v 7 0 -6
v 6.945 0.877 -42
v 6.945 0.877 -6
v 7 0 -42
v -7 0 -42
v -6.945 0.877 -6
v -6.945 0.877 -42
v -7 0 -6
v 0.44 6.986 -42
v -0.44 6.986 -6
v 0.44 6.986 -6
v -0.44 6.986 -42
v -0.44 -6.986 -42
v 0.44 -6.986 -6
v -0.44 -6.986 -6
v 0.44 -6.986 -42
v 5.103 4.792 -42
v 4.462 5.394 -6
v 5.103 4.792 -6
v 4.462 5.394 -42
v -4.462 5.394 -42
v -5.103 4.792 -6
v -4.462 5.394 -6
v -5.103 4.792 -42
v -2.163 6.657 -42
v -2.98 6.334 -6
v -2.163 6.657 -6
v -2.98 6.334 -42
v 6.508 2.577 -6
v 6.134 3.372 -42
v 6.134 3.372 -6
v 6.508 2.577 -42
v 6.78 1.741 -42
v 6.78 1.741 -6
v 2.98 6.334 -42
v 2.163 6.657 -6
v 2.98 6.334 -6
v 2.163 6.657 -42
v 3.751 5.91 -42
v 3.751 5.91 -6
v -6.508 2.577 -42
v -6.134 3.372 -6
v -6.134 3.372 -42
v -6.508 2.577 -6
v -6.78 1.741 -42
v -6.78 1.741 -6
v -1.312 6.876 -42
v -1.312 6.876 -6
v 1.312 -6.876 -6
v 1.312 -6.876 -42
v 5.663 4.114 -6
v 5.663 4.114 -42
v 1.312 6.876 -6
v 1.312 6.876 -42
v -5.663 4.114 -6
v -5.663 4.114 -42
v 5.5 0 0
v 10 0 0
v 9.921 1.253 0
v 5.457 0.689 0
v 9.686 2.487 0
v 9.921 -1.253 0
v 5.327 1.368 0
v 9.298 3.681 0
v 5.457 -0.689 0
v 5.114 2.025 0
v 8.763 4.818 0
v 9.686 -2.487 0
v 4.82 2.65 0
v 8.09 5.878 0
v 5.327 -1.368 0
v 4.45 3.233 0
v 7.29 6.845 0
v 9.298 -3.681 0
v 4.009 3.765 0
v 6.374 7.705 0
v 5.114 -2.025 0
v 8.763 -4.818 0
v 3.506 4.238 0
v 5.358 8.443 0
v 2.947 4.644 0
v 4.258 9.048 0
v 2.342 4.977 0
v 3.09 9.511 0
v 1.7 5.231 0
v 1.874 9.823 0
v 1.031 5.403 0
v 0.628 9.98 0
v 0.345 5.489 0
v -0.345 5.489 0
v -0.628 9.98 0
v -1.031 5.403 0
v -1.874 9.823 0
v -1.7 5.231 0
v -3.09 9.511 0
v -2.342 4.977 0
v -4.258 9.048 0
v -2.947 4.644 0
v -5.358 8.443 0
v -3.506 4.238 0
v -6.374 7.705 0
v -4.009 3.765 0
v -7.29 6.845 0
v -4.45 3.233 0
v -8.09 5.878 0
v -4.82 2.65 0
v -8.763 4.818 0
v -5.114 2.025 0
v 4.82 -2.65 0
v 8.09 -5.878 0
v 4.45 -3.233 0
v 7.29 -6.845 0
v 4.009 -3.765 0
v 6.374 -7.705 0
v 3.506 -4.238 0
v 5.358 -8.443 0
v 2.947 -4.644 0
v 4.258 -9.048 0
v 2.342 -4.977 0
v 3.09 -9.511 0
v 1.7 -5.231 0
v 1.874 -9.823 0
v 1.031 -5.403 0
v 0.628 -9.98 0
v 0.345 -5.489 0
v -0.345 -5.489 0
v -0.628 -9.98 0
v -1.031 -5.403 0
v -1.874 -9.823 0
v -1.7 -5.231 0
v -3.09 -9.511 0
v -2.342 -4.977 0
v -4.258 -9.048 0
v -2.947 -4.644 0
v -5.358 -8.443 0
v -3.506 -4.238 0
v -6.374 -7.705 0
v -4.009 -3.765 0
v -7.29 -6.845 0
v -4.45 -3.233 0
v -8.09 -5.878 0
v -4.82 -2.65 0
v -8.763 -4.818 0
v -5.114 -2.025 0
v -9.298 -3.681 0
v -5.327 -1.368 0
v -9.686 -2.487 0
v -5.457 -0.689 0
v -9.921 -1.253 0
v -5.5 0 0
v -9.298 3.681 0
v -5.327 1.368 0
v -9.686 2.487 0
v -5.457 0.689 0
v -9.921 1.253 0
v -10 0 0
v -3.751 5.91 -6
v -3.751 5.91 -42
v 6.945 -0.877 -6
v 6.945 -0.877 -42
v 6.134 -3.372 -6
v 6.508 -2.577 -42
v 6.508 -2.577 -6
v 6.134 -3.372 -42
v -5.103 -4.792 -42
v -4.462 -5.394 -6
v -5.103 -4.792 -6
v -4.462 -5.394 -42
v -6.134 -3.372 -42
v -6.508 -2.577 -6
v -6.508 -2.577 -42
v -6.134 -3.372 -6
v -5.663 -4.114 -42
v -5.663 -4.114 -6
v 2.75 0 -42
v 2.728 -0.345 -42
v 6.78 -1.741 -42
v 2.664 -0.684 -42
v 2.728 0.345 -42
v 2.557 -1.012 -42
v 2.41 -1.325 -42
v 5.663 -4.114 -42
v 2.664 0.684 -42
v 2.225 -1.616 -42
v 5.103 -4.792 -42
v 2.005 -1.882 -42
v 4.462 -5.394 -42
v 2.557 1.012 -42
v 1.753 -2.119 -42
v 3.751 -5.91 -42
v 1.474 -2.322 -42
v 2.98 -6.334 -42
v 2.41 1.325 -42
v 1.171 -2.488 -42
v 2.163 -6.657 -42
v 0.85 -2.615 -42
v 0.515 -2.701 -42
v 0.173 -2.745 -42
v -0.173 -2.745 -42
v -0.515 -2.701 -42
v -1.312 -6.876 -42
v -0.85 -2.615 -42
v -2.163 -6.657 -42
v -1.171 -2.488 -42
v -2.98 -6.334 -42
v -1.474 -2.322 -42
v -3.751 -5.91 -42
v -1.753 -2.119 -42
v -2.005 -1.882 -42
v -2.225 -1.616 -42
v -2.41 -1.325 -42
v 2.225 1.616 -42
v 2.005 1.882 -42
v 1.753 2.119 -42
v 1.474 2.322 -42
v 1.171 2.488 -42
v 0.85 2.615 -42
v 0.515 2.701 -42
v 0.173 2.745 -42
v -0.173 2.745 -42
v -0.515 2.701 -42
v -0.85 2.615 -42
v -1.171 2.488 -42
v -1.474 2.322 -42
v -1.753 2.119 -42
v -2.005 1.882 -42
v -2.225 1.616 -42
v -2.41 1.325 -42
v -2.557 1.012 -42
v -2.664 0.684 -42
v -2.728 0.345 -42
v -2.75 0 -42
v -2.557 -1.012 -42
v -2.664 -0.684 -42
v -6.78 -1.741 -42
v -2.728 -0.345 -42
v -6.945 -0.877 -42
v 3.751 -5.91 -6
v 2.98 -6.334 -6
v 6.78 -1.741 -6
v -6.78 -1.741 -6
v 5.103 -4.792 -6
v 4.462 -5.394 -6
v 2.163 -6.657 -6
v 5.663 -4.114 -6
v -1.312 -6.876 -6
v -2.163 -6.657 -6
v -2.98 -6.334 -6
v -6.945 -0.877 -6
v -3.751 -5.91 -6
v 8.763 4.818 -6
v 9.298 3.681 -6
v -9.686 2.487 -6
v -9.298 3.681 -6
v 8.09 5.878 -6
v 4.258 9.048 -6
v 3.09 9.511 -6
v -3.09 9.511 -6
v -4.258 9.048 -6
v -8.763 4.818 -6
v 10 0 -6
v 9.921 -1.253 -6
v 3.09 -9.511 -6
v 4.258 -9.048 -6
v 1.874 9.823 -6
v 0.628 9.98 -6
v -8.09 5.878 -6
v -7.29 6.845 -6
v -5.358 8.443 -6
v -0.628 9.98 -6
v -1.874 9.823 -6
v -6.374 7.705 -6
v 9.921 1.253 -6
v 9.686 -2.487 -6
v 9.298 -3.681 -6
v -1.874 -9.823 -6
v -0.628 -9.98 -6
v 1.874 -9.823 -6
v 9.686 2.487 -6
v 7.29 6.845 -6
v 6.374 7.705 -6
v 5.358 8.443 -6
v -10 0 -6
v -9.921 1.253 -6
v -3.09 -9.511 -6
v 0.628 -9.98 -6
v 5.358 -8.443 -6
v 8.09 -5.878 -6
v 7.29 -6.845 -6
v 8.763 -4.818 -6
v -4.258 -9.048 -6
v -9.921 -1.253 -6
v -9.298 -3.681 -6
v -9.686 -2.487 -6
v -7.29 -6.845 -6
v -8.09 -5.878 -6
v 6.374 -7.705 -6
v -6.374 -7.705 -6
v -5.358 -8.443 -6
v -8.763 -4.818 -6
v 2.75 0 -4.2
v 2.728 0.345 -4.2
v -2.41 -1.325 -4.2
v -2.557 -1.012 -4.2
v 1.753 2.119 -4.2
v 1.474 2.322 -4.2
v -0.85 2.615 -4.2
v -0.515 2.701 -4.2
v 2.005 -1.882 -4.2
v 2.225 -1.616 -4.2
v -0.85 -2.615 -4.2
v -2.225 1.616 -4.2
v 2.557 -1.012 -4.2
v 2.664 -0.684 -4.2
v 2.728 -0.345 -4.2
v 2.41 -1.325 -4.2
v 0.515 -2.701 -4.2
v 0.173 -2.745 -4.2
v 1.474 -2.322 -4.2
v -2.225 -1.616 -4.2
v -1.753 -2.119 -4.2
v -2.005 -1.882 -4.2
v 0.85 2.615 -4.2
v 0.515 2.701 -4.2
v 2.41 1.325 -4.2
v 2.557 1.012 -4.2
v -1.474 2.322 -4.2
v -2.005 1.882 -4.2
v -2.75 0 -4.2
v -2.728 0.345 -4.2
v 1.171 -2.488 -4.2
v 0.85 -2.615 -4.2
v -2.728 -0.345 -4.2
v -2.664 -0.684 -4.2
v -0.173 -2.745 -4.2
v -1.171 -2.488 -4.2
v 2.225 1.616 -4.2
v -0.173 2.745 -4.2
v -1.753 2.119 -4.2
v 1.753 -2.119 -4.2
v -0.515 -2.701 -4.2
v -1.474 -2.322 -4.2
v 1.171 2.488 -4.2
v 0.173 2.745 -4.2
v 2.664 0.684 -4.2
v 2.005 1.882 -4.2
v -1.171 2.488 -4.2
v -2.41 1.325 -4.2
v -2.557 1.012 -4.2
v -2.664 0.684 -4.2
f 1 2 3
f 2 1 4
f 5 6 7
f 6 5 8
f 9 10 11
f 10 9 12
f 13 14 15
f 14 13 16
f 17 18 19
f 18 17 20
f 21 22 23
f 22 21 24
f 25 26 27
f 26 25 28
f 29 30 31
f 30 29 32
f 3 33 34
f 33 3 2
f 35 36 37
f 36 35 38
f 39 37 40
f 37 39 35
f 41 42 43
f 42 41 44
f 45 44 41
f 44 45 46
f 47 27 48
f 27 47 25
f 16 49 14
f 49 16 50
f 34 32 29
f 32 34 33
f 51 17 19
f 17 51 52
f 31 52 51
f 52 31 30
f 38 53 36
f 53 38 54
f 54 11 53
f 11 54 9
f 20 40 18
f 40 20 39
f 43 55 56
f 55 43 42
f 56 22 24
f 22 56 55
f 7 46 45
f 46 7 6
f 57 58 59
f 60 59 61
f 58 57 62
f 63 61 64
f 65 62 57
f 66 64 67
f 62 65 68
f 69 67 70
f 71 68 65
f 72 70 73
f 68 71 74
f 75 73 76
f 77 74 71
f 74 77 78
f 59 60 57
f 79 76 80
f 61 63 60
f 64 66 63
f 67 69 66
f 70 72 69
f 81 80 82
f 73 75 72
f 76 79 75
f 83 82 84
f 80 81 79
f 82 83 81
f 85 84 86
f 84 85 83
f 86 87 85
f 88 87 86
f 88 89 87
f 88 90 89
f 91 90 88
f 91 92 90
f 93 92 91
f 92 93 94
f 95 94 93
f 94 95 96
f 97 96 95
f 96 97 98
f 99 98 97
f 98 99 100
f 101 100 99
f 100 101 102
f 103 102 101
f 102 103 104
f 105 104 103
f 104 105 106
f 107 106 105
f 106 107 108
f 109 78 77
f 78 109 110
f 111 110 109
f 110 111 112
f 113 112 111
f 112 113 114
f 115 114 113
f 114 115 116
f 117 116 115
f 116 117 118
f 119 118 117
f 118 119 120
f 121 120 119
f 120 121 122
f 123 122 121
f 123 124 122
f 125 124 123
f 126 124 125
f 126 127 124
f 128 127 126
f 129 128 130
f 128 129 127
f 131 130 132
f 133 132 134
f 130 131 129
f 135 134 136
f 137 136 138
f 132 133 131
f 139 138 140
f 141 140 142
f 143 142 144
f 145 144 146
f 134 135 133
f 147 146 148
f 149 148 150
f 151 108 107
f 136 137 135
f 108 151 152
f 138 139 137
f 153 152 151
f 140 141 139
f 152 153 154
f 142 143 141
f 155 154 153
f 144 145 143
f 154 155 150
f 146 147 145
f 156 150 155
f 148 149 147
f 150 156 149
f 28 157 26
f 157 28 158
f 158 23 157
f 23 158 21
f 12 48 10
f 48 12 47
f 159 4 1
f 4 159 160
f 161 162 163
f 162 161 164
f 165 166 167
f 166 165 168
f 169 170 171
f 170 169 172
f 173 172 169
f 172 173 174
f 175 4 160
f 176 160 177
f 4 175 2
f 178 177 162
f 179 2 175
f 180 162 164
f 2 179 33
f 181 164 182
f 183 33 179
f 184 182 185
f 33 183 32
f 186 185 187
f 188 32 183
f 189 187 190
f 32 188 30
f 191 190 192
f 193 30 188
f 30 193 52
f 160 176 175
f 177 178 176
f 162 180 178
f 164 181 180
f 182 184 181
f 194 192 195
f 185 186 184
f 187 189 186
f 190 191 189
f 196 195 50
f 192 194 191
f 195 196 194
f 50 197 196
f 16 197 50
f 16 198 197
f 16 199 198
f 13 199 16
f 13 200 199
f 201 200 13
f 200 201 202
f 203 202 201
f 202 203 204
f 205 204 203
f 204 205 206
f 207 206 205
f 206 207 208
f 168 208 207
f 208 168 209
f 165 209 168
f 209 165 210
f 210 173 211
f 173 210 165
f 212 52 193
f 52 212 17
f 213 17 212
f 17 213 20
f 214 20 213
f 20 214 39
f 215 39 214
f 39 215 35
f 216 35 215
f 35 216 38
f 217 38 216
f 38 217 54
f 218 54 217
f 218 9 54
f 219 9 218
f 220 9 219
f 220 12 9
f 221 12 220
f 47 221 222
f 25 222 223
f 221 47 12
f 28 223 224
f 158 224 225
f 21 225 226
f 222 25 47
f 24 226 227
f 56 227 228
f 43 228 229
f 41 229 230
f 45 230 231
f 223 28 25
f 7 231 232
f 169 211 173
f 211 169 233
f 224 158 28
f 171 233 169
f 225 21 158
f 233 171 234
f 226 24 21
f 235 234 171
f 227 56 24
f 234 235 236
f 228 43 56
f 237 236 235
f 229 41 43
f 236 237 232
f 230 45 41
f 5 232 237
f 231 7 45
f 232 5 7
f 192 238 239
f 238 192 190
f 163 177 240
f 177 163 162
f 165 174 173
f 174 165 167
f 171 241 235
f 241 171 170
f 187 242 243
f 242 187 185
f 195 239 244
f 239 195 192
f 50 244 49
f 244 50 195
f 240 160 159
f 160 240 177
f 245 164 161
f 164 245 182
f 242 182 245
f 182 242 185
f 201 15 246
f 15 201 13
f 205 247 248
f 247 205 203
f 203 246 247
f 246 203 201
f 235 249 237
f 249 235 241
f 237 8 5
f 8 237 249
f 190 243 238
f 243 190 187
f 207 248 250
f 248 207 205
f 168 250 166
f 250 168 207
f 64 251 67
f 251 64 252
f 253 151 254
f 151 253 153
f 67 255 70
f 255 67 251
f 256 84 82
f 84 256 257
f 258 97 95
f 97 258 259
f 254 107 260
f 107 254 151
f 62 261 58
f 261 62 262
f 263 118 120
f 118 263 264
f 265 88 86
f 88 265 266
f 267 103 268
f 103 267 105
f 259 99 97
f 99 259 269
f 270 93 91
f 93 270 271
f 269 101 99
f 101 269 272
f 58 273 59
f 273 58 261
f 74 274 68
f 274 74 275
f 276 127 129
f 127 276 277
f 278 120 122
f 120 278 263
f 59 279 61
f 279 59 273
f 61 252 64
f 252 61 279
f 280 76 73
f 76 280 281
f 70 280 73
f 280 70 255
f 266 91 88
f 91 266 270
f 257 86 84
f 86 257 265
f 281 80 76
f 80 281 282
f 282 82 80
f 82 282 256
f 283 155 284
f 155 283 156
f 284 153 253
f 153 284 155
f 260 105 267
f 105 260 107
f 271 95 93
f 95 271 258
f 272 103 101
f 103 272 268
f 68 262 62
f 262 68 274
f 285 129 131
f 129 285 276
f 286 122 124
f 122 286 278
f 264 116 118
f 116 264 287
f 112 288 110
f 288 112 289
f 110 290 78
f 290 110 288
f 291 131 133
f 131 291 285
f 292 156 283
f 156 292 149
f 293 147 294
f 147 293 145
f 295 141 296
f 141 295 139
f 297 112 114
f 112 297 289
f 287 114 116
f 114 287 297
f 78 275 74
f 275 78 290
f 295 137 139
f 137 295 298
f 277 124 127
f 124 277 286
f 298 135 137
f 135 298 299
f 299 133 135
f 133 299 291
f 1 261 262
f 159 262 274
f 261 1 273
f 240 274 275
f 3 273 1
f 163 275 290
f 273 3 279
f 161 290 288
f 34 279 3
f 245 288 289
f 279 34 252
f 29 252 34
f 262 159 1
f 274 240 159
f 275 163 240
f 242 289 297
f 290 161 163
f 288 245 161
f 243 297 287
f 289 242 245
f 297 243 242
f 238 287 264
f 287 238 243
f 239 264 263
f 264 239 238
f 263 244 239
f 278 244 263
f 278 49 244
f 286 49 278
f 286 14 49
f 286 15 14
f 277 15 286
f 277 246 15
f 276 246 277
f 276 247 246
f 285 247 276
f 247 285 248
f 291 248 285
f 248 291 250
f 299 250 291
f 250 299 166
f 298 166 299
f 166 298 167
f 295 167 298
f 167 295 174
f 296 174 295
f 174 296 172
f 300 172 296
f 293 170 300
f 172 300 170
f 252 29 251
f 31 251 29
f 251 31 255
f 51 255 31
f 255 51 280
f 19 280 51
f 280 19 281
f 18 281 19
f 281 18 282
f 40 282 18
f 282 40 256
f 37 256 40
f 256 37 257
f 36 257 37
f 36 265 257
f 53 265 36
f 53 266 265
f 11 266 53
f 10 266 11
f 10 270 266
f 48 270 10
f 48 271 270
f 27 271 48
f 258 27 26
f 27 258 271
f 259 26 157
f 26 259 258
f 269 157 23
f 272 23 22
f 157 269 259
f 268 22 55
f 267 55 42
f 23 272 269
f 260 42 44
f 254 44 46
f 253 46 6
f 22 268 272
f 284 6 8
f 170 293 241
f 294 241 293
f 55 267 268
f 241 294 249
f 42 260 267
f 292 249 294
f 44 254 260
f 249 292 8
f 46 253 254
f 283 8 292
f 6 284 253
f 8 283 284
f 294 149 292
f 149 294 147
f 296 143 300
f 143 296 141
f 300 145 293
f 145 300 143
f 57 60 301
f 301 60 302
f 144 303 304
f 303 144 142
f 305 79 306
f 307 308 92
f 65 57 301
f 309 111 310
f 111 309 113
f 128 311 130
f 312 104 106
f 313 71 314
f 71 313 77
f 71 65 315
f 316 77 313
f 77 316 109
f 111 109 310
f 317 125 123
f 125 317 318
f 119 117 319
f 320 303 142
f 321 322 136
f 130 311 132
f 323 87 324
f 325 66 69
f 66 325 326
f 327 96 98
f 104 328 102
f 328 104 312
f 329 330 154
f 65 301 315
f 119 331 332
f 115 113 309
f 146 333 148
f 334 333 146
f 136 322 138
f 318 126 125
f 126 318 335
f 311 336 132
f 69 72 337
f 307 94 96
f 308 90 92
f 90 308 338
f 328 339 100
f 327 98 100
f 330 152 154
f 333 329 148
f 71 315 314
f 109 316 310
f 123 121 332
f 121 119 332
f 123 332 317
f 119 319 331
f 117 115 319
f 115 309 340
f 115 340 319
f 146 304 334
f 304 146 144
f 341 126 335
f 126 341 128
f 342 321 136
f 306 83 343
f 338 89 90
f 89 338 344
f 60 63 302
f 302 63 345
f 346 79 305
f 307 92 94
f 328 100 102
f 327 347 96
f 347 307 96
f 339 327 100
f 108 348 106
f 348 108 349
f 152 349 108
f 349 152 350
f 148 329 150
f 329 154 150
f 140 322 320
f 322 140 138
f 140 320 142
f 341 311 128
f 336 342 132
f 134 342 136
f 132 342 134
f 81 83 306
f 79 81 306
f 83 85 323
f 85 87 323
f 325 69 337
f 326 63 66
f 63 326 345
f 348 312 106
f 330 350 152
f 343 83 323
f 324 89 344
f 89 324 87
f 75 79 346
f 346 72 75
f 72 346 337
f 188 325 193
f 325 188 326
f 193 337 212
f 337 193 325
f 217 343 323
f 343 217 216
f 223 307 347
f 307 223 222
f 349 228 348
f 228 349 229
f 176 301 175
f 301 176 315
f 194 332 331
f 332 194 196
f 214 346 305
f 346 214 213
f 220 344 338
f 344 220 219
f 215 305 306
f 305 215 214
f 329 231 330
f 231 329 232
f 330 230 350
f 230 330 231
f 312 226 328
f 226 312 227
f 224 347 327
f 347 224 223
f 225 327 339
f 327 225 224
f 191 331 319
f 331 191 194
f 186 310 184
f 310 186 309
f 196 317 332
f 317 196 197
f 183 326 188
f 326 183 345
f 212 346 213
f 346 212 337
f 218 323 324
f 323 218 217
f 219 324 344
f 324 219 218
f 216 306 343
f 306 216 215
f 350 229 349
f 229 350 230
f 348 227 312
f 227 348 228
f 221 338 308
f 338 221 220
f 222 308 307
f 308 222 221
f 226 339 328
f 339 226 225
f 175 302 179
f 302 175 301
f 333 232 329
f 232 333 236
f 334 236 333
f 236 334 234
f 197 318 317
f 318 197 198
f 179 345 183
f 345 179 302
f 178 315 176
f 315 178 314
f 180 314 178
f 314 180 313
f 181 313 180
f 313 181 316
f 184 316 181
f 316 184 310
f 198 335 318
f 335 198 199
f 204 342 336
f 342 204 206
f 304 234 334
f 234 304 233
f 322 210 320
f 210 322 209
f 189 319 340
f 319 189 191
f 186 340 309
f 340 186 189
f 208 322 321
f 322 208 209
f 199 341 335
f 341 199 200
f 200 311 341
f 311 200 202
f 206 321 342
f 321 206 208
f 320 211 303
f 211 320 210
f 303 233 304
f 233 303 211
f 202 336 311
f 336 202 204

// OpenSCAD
$fn = 50;


difference() {
	union() {
		translate(v = [0, 0, -42.0000000000]) {
			cylinder(h = 42, r = 7.0000000000);
		}
		translate(v = [0, 0, -6.0000000000]) {
			cylinder(h = 6, r = 10.0000000000);
		}
	}
	union() {
		translate(v = [0, 0, 0]) {
			rotate(a = [0, 0, 0]) {
				difference() {
					union() {
						#translate(v = [0, 0, -42.0000000000]) {
							cylinder(h = 42, r = 2.2500000000);
						}
						#translate(v = [0, 0, -4.2000000000]) {
							cylinder(h = 4.2000000000, r1 = 2.7500000000, r2 = 5.5000000000);
						}
						#translate(v = [0, 0, -42.0000000000]) {
							cylinder(h = 42, r = 2.7500000000);
						}
						#translate(v = [0, 0, -42.0000000000]) {
							cylinder(h = 42, r = 2.2500000000);
						}
					}
					union();
				}
			}
		}
	}
}
